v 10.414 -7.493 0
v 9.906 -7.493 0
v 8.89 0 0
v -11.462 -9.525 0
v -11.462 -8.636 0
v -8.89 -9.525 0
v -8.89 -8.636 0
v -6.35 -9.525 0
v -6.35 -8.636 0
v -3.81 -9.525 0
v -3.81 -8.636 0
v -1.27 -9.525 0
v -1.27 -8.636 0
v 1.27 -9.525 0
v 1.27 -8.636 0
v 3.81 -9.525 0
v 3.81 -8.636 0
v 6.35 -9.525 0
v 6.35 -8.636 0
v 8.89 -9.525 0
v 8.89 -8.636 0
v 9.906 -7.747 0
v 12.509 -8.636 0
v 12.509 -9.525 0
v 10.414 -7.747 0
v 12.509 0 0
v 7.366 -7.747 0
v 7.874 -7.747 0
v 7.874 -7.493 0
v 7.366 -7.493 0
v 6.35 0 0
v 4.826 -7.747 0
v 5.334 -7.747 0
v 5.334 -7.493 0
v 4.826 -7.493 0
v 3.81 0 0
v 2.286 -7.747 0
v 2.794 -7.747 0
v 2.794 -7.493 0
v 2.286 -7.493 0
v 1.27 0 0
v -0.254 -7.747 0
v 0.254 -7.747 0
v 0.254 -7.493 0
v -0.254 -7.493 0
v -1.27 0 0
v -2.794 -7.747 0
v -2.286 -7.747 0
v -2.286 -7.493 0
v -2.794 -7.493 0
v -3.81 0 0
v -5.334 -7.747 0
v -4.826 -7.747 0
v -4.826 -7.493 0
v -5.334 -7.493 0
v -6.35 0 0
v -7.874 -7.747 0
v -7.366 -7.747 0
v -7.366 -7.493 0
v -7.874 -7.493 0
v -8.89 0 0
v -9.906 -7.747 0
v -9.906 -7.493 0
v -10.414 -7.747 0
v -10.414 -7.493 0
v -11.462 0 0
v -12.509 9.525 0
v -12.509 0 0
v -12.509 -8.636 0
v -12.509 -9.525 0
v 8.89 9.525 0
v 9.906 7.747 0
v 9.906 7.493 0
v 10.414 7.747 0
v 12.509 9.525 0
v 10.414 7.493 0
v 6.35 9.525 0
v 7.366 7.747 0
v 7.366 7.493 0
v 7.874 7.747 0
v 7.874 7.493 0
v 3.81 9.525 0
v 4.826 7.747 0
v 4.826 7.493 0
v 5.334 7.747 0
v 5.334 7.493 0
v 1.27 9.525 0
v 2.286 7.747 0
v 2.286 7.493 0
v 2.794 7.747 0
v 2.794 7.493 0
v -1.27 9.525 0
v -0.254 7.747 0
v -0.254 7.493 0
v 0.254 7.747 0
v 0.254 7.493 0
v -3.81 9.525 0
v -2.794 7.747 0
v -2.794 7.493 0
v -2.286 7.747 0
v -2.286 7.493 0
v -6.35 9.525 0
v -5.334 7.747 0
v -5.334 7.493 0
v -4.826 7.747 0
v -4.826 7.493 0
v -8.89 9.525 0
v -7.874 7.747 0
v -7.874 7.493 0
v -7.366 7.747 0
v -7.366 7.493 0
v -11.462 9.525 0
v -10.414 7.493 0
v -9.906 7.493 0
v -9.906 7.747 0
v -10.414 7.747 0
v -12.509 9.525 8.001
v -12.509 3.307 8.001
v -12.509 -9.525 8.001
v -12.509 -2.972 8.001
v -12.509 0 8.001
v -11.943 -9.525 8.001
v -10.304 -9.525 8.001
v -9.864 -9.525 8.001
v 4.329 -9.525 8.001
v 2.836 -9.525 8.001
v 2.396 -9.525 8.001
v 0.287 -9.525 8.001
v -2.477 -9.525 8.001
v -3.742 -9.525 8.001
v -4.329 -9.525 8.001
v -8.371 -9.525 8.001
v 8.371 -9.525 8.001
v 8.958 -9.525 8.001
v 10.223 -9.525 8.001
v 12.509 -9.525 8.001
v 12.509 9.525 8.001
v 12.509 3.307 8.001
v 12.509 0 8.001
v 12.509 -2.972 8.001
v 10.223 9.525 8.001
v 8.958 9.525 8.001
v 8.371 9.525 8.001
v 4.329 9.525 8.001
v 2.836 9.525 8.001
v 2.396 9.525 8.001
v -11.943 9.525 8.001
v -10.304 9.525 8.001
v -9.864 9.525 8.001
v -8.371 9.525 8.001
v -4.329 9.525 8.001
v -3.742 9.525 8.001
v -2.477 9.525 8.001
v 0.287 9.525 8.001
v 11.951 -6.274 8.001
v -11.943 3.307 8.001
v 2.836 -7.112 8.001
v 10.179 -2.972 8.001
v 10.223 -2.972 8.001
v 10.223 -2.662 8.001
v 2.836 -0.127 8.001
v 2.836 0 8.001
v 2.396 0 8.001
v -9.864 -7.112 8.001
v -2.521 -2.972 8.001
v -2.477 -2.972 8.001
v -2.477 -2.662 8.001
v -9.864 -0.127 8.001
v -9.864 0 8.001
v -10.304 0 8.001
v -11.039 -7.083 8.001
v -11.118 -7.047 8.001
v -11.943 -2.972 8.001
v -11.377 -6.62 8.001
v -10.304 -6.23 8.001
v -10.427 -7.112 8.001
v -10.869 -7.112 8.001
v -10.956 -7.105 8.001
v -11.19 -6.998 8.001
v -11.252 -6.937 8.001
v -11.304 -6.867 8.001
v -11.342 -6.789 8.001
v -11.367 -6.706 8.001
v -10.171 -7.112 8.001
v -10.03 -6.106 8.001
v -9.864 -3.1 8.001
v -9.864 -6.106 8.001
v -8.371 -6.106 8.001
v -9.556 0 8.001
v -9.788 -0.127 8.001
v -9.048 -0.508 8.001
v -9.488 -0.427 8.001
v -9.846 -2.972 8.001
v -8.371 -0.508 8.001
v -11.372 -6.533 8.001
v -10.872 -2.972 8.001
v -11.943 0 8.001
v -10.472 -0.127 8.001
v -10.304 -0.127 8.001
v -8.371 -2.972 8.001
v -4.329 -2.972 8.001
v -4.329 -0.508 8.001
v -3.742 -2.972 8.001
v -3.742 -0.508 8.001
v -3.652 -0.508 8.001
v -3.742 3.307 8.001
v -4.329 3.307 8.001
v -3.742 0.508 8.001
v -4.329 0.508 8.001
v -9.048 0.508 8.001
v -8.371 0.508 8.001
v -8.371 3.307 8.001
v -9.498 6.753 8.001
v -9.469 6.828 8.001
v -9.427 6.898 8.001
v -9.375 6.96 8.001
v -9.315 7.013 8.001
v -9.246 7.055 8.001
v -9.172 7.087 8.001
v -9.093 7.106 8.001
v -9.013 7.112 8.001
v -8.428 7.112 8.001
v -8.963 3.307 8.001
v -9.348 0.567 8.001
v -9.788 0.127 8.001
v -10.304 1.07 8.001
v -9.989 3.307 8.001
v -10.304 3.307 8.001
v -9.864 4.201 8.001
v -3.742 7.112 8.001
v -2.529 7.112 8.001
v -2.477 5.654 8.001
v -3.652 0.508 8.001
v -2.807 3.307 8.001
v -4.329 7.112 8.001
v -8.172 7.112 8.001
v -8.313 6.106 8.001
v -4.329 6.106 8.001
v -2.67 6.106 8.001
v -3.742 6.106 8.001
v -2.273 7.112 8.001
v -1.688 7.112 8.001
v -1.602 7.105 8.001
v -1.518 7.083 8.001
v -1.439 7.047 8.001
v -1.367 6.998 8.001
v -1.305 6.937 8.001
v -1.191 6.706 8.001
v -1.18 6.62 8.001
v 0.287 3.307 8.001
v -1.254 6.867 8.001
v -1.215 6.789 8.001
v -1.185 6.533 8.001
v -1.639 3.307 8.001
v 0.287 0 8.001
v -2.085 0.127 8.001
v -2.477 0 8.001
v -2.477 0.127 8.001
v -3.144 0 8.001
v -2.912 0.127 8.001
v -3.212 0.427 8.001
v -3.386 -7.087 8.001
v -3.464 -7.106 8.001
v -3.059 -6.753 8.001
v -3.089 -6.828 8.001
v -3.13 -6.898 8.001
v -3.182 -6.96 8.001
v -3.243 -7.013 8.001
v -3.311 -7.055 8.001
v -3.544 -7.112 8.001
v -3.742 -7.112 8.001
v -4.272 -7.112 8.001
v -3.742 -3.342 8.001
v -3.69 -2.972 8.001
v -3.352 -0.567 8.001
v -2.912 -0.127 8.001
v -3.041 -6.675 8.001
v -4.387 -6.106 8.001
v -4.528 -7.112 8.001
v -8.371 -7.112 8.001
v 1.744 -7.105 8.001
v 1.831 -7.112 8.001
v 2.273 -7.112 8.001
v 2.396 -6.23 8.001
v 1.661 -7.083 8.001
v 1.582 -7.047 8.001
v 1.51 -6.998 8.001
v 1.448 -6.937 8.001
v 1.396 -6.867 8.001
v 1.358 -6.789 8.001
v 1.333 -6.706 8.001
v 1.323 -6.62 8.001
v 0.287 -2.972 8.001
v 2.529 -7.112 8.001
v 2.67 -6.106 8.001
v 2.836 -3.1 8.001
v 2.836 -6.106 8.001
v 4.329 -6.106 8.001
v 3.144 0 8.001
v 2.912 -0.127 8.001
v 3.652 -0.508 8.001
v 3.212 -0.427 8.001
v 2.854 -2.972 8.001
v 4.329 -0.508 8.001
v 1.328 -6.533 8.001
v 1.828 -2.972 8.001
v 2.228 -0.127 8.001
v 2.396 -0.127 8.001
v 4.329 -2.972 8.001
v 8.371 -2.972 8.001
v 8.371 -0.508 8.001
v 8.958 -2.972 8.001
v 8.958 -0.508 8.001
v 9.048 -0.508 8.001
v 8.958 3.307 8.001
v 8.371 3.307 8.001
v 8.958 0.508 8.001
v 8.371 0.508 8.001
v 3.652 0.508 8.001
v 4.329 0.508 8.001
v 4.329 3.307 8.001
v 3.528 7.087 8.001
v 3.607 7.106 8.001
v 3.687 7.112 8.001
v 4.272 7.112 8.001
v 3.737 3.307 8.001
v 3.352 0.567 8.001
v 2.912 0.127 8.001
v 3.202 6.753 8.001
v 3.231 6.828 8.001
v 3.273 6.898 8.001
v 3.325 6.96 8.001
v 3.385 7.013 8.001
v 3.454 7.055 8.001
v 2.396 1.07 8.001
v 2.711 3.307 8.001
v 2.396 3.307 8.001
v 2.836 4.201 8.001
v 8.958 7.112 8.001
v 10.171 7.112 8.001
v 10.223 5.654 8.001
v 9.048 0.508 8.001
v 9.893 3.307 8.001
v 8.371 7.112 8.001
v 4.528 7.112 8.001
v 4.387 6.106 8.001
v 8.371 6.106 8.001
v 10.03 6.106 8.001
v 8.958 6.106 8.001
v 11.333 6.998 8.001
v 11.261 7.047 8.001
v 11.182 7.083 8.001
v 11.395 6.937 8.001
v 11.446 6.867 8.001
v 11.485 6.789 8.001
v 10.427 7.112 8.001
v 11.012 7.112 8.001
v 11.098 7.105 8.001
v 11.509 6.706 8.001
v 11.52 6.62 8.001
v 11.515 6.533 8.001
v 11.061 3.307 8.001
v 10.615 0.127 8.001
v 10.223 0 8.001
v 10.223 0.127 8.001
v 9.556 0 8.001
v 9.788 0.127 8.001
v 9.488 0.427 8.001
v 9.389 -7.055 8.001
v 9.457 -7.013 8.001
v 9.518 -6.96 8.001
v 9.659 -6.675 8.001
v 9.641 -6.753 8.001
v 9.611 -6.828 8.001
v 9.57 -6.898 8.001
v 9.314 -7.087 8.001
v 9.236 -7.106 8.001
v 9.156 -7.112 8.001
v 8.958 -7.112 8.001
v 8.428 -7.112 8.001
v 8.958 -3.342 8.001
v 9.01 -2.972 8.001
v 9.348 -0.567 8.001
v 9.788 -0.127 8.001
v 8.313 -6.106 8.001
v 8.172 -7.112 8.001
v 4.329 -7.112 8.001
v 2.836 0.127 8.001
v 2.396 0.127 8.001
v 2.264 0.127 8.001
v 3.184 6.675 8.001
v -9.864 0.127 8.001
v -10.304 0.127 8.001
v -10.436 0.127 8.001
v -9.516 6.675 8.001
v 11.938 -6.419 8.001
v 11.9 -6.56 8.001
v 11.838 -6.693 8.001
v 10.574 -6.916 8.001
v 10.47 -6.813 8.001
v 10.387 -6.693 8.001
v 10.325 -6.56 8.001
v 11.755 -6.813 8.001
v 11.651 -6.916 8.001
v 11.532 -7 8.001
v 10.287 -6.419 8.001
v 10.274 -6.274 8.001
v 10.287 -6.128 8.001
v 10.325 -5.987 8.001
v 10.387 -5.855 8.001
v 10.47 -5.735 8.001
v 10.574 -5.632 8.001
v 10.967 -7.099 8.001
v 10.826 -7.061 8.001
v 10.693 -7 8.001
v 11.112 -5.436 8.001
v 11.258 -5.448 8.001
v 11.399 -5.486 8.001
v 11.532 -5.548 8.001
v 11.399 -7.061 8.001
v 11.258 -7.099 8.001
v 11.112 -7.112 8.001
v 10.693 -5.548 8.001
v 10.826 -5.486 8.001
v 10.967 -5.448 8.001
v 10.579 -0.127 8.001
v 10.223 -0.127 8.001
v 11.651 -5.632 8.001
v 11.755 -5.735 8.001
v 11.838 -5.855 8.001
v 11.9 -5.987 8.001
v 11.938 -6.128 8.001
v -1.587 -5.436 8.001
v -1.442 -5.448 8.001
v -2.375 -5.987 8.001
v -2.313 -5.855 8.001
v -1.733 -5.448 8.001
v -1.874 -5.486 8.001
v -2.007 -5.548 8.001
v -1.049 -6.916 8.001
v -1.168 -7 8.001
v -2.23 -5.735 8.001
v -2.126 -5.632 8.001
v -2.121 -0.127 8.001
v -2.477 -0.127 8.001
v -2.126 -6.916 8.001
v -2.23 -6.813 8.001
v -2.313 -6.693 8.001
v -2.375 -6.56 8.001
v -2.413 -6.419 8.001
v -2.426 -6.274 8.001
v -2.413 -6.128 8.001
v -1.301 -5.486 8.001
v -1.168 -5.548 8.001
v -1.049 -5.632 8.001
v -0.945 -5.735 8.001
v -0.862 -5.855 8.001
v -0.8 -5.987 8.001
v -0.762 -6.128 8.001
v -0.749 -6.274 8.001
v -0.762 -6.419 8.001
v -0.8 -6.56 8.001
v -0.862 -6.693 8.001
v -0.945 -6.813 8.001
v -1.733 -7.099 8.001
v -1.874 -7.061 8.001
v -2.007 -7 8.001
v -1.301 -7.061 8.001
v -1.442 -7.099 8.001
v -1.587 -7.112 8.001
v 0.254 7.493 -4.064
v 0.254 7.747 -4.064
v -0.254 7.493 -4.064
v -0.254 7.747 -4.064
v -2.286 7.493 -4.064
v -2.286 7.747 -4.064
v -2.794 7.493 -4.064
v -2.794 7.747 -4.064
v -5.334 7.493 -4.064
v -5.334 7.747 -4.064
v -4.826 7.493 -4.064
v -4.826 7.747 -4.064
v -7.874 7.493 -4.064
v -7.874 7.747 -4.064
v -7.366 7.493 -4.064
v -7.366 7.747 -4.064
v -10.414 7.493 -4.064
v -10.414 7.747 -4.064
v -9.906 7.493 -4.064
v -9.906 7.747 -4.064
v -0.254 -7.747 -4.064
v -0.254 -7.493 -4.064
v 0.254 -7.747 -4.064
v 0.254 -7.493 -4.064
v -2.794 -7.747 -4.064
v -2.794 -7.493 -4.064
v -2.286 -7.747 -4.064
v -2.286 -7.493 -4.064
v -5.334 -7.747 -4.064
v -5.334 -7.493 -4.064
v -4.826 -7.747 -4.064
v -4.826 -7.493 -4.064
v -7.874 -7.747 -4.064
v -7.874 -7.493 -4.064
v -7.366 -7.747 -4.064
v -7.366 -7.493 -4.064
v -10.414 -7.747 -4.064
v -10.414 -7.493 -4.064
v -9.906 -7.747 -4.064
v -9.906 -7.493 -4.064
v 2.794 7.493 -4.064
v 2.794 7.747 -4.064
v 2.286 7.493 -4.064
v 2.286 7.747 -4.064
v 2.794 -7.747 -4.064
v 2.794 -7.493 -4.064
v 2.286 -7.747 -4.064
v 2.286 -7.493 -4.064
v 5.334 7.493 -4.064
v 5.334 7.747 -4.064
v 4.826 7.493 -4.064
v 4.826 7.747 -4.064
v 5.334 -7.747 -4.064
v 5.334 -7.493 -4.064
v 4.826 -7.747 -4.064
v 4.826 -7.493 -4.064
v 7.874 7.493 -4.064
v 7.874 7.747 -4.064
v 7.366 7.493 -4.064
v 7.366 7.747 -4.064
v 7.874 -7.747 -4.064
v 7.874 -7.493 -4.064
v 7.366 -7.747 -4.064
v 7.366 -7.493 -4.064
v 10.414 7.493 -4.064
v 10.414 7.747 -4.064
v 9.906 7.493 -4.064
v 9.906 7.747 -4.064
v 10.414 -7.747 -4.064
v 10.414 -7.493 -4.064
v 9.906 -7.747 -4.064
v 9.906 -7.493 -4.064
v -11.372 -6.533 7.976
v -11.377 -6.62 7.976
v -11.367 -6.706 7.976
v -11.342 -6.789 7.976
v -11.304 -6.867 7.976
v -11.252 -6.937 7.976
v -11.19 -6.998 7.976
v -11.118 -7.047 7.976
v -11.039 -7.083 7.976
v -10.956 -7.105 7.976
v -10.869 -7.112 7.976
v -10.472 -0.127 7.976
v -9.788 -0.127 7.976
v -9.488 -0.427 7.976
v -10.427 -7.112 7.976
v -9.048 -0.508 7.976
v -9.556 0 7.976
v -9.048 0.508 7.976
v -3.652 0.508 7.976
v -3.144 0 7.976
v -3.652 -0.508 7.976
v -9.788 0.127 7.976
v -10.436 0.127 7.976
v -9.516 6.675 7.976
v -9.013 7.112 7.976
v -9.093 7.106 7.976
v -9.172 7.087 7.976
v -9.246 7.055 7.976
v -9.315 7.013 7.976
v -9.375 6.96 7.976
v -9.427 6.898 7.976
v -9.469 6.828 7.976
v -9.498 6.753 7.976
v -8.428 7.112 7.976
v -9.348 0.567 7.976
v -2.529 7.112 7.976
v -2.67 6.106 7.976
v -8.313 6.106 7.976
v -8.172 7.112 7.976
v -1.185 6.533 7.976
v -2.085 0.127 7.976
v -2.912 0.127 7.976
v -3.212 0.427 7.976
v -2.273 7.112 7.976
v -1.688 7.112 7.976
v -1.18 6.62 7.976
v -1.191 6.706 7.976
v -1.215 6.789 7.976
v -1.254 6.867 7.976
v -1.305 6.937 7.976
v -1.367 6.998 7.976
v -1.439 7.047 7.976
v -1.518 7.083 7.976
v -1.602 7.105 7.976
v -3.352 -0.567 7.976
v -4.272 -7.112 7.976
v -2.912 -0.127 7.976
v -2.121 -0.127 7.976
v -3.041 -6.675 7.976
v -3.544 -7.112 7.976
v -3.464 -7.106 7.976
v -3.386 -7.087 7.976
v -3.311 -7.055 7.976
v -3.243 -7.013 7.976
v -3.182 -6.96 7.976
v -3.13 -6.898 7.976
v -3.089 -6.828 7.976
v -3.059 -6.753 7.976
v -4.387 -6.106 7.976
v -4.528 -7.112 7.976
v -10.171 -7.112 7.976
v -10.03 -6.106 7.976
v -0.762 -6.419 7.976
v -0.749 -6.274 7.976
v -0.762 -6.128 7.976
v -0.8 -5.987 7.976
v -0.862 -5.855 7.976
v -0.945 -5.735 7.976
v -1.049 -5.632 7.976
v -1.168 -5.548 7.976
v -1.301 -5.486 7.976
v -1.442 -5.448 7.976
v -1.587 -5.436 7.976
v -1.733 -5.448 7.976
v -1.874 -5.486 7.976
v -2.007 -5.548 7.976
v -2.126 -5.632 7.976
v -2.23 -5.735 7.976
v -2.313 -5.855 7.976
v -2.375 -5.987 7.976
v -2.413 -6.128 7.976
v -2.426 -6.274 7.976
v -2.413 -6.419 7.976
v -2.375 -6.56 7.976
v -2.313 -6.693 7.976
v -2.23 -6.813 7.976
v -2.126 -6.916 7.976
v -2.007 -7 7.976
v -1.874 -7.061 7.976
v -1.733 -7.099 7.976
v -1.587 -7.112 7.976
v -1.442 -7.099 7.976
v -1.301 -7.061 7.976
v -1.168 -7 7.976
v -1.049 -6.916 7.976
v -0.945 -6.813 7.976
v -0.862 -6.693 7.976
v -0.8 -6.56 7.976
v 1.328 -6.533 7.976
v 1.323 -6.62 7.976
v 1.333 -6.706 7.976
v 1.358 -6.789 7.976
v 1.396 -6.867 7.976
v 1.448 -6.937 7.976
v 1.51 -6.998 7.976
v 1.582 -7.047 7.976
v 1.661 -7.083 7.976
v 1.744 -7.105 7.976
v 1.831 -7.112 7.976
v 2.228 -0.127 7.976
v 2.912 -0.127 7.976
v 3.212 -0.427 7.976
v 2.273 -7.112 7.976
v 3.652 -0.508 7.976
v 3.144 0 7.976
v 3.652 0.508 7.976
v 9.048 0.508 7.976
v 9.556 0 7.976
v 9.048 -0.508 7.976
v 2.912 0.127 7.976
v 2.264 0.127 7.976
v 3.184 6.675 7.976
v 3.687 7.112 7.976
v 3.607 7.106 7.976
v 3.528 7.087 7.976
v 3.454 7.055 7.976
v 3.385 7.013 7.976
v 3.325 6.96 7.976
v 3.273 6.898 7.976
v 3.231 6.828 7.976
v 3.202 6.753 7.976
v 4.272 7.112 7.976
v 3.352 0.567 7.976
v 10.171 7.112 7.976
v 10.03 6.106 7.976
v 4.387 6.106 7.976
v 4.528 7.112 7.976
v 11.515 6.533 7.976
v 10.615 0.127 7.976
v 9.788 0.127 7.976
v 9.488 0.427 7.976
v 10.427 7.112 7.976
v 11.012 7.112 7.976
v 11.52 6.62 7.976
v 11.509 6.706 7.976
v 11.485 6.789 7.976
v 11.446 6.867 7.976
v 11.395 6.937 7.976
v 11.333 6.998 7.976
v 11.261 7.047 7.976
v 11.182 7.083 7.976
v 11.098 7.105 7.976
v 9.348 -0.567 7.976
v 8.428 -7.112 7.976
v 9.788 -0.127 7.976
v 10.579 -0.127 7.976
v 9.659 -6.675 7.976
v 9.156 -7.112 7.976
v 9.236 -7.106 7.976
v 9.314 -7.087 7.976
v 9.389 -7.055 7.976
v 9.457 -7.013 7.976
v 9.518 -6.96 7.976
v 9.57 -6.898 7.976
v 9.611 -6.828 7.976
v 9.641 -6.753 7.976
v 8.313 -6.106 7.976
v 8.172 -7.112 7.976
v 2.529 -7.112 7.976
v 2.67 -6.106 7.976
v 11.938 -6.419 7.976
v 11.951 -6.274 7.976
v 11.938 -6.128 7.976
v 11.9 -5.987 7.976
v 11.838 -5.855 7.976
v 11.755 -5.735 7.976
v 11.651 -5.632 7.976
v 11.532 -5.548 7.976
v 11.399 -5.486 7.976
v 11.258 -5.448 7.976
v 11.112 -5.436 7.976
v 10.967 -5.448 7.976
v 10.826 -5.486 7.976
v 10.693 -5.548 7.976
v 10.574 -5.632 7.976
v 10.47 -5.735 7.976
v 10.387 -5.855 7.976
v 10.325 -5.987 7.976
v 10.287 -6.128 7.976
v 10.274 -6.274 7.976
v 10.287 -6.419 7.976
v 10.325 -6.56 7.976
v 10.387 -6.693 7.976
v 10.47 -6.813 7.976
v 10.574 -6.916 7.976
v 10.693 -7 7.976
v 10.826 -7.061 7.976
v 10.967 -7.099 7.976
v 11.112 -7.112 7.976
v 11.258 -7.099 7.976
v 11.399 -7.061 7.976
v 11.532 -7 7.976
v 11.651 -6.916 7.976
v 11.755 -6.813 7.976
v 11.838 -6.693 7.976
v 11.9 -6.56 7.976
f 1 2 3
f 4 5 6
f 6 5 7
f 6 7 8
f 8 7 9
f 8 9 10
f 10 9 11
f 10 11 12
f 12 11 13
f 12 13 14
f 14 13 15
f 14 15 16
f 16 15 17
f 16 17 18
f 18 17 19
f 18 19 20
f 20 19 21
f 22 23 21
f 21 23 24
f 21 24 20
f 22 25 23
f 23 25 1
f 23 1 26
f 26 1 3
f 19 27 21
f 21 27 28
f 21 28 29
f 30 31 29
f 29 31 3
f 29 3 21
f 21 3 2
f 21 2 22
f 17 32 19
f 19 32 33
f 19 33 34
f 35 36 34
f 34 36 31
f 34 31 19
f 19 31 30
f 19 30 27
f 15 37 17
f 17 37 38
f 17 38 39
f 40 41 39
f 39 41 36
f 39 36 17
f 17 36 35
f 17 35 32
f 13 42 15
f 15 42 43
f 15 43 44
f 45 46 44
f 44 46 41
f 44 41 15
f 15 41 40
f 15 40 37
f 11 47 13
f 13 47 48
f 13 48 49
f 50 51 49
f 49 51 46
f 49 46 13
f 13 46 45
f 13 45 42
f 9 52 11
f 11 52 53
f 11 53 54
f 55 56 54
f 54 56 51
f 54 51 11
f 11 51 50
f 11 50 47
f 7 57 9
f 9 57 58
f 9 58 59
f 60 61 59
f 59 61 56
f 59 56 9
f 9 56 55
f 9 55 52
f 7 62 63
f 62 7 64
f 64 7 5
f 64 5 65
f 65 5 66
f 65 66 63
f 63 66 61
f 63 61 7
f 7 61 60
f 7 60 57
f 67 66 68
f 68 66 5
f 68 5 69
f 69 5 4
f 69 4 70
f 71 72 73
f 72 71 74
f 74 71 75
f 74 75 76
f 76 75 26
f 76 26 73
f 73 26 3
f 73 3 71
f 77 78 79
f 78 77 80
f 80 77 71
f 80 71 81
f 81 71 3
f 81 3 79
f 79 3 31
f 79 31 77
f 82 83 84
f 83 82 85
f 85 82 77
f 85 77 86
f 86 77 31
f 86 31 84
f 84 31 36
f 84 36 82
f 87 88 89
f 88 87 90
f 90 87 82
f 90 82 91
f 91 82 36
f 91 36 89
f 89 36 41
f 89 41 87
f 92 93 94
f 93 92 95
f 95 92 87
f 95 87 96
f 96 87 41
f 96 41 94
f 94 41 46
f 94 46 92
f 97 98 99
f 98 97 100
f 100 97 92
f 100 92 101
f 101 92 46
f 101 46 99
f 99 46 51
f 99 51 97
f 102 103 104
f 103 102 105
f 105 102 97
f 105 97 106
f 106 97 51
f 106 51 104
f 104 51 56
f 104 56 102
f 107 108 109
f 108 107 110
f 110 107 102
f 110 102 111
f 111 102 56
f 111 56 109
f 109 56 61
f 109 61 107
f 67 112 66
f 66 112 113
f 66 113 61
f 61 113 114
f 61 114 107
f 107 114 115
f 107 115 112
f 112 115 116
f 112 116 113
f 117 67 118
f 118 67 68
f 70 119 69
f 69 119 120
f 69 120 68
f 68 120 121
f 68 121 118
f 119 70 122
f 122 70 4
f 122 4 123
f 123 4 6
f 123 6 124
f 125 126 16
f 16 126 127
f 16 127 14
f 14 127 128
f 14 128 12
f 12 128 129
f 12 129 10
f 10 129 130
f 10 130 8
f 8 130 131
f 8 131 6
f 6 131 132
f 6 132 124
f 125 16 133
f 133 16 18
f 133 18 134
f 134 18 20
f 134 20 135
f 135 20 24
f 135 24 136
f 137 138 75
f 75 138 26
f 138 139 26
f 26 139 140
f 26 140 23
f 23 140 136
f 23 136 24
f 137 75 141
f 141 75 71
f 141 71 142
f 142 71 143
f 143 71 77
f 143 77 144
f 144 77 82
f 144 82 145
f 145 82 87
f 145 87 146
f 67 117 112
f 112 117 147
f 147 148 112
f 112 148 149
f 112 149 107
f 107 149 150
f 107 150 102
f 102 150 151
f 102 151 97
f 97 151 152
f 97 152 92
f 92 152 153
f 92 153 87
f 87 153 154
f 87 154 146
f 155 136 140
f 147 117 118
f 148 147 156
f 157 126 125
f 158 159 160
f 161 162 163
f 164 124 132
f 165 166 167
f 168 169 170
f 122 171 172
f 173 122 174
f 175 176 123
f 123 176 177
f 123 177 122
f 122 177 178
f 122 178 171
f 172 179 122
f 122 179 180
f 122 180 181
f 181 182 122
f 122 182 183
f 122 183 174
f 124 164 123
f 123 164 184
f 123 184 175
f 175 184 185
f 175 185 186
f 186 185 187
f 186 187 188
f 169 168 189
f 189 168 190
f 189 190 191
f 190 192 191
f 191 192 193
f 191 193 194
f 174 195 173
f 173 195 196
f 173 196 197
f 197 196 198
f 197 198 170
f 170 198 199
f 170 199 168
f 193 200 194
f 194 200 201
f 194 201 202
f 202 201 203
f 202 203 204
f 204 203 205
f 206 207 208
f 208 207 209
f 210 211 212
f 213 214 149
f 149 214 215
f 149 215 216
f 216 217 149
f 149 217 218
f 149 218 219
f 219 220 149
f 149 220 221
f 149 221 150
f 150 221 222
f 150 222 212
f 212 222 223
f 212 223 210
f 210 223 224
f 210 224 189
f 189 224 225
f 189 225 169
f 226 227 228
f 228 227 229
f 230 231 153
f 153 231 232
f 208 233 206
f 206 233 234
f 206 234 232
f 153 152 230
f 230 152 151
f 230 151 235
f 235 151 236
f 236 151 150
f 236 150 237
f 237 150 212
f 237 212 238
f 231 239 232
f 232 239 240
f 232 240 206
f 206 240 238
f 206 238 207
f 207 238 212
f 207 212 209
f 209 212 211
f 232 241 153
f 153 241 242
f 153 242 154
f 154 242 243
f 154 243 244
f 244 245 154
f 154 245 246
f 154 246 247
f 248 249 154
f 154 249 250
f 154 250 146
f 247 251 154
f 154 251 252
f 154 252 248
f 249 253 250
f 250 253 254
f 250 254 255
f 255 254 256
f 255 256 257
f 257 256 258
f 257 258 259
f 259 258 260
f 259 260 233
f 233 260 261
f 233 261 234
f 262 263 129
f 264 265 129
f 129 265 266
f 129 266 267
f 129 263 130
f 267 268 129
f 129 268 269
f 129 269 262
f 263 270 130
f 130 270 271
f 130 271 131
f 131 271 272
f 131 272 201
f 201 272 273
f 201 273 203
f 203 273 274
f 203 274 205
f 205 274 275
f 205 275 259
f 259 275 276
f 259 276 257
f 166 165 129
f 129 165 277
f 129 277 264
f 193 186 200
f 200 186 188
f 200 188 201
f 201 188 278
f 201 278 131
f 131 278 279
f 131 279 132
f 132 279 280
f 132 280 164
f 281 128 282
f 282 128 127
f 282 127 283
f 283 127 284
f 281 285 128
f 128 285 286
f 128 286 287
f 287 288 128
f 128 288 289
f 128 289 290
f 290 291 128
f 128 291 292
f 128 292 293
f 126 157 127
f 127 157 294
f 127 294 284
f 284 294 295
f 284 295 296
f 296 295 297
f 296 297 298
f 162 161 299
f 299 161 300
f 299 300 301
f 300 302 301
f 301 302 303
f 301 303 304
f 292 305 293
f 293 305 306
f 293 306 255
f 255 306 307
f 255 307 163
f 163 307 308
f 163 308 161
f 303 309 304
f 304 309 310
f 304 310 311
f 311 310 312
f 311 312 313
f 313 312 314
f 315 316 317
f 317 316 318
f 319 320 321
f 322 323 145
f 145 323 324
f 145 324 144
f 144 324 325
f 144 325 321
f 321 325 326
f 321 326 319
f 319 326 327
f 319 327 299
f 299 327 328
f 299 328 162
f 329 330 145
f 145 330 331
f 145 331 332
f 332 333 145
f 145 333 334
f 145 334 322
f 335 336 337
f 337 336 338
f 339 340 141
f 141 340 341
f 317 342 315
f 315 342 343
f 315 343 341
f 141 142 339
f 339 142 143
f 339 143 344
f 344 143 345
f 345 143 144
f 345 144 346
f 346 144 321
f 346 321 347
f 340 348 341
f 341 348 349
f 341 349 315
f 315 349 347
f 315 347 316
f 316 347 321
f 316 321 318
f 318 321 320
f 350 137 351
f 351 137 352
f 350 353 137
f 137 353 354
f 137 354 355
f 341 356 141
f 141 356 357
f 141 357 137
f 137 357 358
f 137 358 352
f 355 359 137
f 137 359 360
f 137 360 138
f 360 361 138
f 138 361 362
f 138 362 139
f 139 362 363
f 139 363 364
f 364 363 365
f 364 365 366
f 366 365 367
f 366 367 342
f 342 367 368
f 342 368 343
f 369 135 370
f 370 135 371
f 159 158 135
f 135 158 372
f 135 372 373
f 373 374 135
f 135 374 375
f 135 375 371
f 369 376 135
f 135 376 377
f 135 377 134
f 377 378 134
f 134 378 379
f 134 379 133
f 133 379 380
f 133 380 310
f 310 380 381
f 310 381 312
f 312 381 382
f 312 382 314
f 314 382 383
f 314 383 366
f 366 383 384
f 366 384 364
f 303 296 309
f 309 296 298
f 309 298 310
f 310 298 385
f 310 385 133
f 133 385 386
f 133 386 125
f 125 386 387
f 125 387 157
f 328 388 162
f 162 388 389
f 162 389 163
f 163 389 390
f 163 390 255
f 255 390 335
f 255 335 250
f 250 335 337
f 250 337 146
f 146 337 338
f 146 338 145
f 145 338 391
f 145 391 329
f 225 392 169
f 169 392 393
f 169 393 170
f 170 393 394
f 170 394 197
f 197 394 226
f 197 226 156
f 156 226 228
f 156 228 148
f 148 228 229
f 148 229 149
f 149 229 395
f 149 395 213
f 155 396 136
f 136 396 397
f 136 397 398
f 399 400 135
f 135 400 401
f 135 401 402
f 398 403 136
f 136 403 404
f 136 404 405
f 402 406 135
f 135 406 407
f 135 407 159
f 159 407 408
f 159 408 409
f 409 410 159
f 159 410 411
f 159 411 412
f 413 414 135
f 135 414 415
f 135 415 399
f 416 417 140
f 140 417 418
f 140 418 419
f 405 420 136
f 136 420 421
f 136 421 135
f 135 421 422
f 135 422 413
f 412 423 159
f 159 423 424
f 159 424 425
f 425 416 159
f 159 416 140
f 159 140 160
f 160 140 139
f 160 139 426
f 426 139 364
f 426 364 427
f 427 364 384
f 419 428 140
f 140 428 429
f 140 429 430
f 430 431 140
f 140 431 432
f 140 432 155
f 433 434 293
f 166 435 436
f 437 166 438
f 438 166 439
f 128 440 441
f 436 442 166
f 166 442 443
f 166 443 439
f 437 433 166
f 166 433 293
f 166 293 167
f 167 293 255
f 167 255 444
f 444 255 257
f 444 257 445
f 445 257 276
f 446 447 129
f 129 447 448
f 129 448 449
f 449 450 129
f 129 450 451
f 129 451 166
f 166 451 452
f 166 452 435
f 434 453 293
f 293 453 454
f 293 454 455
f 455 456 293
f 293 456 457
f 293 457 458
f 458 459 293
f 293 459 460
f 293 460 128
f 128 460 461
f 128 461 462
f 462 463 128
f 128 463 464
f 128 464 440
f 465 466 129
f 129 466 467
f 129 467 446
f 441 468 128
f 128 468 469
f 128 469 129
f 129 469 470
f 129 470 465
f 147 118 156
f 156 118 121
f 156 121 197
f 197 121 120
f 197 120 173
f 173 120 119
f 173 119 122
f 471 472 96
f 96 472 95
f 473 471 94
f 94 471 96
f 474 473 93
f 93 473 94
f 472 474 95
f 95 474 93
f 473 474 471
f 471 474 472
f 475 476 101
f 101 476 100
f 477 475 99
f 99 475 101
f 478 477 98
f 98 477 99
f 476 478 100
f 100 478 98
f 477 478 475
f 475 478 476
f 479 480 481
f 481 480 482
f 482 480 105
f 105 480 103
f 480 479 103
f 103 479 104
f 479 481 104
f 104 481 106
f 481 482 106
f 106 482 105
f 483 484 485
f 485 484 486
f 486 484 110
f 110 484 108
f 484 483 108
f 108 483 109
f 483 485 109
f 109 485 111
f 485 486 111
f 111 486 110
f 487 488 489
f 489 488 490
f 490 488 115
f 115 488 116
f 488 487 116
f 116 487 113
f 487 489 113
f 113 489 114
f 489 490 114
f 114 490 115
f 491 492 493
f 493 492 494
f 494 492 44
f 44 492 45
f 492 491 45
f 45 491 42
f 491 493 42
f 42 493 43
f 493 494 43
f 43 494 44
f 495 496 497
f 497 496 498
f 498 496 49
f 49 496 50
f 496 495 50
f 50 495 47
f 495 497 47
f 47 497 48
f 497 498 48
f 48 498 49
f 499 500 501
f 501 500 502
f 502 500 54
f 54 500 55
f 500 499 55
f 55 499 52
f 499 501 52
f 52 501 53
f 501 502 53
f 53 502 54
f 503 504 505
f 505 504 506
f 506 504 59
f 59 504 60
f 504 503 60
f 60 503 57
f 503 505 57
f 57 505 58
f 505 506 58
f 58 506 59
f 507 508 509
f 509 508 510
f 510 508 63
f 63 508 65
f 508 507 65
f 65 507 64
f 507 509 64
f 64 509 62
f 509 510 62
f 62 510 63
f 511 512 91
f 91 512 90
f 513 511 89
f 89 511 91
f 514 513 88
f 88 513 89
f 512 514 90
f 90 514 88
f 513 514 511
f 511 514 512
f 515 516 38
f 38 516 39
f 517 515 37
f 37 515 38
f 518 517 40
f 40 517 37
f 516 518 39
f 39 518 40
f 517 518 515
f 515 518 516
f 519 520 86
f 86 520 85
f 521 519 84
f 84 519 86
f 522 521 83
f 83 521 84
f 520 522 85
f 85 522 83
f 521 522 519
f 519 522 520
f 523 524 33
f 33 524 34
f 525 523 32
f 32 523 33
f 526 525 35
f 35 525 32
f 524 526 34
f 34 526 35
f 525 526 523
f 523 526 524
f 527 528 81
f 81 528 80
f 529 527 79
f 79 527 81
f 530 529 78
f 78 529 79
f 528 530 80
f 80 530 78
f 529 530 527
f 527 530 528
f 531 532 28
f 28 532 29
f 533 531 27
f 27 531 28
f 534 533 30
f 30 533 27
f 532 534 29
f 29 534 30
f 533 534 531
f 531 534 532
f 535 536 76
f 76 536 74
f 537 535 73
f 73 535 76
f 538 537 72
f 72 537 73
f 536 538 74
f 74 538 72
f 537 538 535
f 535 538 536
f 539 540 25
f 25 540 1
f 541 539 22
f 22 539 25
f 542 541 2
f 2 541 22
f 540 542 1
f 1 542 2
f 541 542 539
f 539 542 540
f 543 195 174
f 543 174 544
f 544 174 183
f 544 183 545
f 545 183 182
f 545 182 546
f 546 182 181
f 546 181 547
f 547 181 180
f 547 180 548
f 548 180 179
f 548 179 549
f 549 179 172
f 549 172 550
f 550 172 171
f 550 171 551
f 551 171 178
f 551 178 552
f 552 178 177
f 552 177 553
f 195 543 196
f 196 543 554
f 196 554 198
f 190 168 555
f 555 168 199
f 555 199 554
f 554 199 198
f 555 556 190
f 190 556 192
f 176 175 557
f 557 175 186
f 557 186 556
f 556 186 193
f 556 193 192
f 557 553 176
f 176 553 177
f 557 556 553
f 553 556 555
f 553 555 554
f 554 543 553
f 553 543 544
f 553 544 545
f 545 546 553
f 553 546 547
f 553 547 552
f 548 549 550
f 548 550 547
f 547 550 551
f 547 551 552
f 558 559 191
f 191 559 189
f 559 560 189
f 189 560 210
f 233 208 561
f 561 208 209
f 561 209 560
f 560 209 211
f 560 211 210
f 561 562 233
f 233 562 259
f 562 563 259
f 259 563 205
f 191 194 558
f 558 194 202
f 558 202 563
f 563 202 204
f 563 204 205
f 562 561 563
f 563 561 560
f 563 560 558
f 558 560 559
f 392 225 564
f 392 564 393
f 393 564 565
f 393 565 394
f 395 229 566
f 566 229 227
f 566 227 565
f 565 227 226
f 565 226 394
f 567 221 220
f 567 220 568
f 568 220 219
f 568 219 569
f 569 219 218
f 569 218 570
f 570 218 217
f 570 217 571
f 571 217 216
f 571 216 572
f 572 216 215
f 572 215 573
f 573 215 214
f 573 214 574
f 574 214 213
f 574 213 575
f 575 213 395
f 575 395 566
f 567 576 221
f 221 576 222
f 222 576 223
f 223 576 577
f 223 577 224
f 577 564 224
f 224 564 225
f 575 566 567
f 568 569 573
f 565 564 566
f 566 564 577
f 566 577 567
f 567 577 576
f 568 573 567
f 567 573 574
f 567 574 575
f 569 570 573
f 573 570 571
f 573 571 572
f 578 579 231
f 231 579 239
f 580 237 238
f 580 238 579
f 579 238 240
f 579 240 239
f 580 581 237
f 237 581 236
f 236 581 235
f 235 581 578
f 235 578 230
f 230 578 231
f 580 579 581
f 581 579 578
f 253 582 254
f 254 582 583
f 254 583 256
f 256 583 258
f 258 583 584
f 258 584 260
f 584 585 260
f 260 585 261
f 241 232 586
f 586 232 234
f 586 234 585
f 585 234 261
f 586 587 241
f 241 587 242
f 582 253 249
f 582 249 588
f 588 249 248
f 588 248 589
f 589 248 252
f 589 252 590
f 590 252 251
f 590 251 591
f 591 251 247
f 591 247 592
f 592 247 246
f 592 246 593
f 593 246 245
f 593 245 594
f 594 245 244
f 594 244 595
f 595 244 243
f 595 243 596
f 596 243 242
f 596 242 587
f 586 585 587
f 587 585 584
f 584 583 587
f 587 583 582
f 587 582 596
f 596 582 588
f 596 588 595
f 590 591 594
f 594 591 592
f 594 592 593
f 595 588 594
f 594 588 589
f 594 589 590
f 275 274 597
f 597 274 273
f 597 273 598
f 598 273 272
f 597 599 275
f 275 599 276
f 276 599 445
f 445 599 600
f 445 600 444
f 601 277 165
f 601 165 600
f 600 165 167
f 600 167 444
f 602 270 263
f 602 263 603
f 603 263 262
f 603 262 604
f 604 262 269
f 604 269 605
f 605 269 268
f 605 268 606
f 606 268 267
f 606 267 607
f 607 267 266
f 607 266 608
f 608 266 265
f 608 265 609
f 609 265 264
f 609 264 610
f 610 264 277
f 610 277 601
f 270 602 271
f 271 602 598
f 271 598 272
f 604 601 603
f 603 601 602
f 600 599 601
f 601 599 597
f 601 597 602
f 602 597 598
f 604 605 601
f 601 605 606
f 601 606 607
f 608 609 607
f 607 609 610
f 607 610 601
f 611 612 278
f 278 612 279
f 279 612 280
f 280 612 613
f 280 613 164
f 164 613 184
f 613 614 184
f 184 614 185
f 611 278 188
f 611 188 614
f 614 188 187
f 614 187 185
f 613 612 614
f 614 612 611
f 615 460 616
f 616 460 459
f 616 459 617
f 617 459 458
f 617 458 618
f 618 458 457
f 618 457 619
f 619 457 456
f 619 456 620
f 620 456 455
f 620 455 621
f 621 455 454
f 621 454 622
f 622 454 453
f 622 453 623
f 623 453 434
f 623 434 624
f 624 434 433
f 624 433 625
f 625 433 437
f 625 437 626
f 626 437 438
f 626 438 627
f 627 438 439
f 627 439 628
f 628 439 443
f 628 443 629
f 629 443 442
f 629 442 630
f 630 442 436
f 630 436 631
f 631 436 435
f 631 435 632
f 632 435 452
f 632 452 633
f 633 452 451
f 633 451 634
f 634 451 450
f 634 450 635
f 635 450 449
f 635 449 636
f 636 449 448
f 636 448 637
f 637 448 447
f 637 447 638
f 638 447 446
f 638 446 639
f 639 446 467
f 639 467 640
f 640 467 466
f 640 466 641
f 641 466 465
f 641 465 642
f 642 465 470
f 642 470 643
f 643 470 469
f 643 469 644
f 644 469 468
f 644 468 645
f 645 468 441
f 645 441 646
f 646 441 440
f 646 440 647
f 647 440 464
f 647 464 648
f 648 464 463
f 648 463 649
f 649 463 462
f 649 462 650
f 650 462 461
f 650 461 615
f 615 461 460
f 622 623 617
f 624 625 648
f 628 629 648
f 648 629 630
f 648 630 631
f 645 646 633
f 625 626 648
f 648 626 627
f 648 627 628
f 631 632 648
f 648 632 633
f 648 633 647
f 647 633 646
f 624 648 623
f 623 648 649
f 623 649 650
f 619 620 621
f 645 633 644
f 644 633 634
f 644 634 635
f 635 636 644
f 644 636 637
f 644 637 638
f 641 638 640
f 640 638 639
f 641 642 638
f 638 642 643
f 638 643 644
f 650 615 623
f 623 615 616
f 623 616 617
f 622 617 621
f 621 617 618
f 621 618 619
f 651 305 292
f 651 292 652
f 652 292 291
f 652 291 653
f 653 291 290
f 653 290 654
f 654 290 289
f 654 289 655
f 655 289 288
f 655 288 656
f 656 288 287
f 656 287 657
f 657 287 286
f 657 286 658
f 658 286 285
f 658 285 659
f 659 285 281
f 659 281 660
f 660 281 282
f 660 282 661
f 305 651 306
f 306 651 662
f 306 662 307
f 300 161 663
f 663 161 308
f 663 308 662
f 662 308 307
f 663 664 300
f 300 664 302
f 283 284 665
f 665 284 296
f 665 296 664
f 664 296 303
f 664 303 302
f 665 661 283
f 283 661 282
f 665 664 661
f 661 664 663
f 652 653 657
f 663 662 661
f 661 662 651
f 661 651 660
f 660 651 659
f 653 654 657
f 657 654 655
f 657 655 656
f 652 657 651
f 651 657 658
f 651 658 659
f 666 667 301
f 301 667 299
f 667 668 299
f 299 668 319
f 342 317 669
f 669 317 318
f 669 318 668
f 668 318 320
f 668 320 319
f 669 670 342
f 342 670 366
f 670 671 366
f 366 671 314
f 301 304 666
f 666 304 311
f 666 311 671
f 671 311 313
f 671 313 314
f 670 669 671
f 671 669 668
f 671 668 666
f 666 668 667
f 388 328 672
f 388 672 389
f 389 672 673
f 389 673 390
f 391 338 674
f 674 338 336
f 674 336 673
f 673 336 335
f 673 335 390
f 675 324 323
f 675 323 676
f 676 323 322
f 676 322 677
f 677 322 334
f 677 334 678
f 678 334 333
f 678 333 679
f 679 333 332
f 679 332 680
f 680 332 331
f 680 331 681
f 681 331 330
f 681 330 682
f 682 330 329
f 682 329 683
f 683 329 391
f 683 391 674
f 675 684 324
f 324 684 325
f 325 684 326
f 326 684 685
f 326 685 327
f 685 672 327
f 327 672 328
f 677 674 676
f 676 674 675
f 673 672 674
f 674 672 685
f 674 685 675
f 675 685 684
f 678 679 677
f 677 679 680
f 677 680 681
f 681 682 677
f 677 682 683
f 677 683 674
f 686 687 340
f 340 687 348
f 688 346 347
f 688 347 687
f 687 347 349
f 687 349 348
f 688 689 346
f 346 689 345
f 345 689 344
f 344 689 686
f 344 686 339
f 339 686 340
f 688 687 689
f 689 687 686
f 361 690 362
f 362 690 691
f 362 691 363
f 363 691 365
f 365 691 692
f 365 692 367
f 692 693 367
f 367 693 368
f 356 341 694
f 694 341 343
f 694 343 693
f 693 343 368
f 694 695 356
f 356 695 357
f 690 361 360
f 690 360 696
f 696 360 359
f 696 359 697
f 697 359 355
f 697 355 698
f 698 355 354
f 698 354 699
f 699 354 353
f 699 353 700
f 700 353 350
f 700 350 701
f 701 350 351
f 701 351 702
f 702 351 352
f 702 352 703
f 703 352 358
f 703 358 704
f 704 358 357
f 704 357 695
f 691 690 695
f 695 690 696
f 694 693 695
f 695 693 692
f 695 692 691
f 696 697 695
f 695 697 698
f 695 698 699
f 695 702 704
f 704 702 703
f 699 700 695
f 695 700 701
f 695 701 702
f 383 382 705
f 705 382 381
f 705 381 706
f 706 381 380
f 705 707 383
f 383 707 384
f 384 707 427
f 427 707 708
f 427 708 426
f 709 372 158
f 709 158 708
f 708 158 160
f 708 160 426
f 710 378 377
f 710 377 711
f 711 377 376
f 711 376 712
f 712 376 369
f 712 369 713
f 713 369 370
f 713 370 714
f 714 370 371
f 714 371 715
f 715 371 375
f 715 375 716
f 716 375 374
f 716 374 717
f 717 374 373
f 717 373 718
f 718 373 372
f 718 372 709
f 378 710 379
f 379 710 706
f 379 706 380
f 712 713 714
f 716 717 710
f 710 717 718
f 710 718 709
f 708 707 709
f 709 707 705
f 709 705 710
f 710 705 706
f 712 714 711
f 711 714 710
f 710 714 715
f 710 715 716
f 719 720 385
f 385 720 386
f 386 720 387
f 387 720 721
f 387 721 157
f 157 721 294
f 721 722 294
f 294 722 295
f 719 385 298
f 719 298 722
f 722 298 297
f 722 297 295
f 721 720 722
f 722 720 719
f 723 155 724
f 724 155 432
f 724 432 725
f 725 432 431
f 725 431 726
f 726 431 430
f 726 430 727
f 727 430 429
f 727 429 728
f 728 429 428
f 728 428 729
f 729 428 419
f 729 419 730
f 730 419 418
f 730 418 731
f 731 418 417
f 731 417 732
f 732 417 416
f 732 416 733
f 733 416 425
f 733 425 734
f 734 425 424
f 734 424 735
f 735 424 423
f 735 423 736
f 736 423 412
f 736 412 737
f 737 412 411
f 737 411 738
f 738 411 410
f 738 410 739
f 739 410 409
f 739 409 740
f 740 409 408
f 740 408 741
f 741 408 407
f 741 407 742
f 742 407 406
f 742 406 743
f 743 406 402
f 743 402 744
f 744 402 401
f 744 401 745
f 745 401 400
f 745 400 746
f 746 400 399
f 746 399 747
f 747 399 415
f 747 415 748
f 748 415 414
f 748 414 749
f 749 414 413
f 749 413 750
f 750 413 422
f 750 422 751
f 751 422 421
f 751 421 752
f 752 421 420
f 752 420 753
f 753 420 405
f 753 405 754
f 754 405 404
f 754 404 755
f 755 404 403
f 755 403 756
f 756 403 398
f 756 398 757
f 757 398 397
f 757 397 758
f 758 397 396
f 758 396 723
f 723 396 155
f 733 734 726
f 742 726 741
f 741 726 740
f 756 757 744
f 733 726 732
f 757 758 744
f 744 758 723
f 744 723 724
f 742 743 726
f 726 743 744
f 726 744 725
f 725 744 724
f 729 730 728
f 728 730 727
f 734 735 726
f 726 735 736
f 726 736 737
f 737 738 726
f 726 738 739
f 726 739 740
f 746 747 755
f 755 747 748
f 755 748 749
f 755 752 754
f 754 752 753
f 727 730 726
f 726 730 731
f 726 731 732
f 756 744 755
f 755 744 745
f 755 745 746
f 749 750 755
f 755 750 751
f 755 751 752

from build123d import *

# Parameters (mm, degrees)
SKETCH1_W            = 25.019
SKETCH1_H            = 19.05
BOSS_EXTRUDE1_DEPTH  = 8.001
SKETCH2_W            = 0.508
SKETCH2_H            = 0.254
BOSS_EXTRUDE2_DEPTH  = 4.064
LPATTERN1_COUNT      = 5
LPATTERN1_PITCH      = 2.54
LPATTERN1_COUNT_DIR2 = 2
LPATTERN1_PITCH_DIR2 = 15.24
LPATTERN2_COUNT      = 5
LPATTERN2_PITCH      = 2.54
LPATTERN2_COUNT_DIR2 = 2
LPATTERN2_PITCH_DIR2 = 15.24
SKETCH4_R            = 0.8382
CUT_EXTRUDE1_DEPTH   = 0.0254
LPATTERN3_COUNT      = 2
LPATTERN3_PITCH      = 12.7


with BuildPart() as part:
    # Sketch1 → Boss-Extrude1 (new body)
    with BuildSketch(Plane.XY):
        Rectangle(SKETCH1_W, SKETCH1_H)
    extrude(amount=BOSS_EXTRUDE1_DEPTH)

    # Sketch2 → Boss-Extrude2 (add)
    with BuildSketch(Plane(origin=(0, 0, 0), x_dir=(-1, 0, 0), z_dir=(0, 0, -1))):
        with Locations((0, 7.62)):
            Rectangle(SKETCH2_W, SKETCH2_H)
    boss_extrude2 = extrude(amount=BOSS_EXTRUDE2_DEPTH)

    # LPattern1: Boss-Extrude2 5 × 2
    with Locations(*[(-i * LPATTERN1_PITCH, -j * LPATTERN1_PITCH_DIR2, 0) for i in range(LPATTERN1_COUNT) for j in range(LPATTERN1_COUNT_DIR2) if (i, j) != (0, 0)]):
        add(boss_extrude2)

    # LPattern2: Boss-Extrude2 5 × 2
    with Locations(*[(i * LPATTERN2_PITCH, -j * LPATTERN2_PITCH_DIR2, 0) for i in range(LPATTERN2_COUNT) for j in range(LPATTERN2_COUNT_DIR2) if (i, j) != (0, 0)]):
        add(boss_extrude2)

    # Sketch4 → Cut-Extrude1 (cut)
    with BuildSketch(Plane.XY.offset(8.001)):
        with Locations((-1.5875, -6.2738)):
            Circle(SKETCH4_R)
        Polygon((-9.556202543, 0), (-9.048202543, 0.508), (-3.651797457, 0.508), (-3.143797457, 0), (-3.651797457, -0.508), (-9.048202543, -0.508), align=None)
        with BuildLine():
            Line((-9.788412788, 0.127), (-9.348244077, 0.567168711))
            Line((-9.348244077, 0.567168711), (-8.428428025, 7.112))
            Line((-8.428428025, 7.112), (-9.012815176, 7.112))
            ThreePointArc((-9.012815176, 7.112), (-9.346093162, 6.987392467), (-9.515871354, 6.674699935))
            Line((-9.515871354, 6.674699935), (-10.436090569, 0.127))
            Line((-10.436090569, 0.127), (-9.788412788, 0.127))
        make_face()
        Polygon((-5.350473584, 7.112), (-8.171931821, 7.112), (-8.313331692, 6.105887642), (-5.491873454, 6.105887642), (-2.670415217, 6.105887642), (-2.529015346, 7.112), align=None)
        with BuildLine():
            Line((-2.085422571, 0.127), (-2.911587212, 0.127))
            Line((-2.911587212, 0.127), (-3.211979491, 0.427392279))
            Line((-3.211979491, 0.427392279), (-2.272519143, 7.112))
            Line((-2.272519143, 7.112), (-1.688131992, 7.112))
            ThreePointArc((-1.688131992, 7.112), (-1.304739525, 6.937277987), (-1.185075813, 6.533300065))
            Line((-1.185075813, 6.533300065), (-2.085422571, 0.127))
        make_face()
        with BuildLine():
            Line((-3.544395336, -7.112), (-4.271571975, -7.112))
            Line((-4.271571975, -7.112), (-3.351755923, -0.567168711))
            Line((-3.351755923, -0.567168711), (-2.911587212, -0.127))
            Line((-2.911587212, -0.127), (-2.121119943, -0.127))
            Line((-2.121119943, -0.127), (-3.041339158, -6.674699935))
            ThreePointArc((-3.041339158, -6.674699935), (-3.21111735, -6.987392467), (-3.544395336, -7.112))
        make_face()
        with BuildLine():
            Line((-10.471787941, -0.127), (-9.788412788, -0.127))
            Line((-9.788412788, -0.127), (-9.488020509, -0.427392279))
            Line((-9.488020509, -0.427392279), (-10.427480857, -7.112))
            Line((-10.427480857, -7.112), (-10.86907852, -7.112))
            ThreePointArc((-10.86907852, -7.112), (-11.252470987, -6.937277987), (-11.372134699, -6.533300065))
            Line((-11.372134699, -6.533300065), (-10.471787941, -0.127))
        make_face()
        Polygon((-7.208126546, -6.105887642), (-10.029584783, -6.105887642), (-10.170984654, -7.112), (-7.349526416, -7.112), (-4.528068179, -7.112), (-4.386668308, -6.105887642), align=None)
    cut_extrude1 = extrude(amount=-CUT_EXTRUDE1_DEPTH, mode=Mode.SUBTRACT)

    # LPattern3: Cut-Extrude1 ×2
    with Locations(*[(i * LPATTERN3_PITCH, 0, 0) for i in range(1, LPATTERN3_COUNT)]):
        add(cut_extrude1, mode=Mode.SUBTRACT)


solid = part.part
